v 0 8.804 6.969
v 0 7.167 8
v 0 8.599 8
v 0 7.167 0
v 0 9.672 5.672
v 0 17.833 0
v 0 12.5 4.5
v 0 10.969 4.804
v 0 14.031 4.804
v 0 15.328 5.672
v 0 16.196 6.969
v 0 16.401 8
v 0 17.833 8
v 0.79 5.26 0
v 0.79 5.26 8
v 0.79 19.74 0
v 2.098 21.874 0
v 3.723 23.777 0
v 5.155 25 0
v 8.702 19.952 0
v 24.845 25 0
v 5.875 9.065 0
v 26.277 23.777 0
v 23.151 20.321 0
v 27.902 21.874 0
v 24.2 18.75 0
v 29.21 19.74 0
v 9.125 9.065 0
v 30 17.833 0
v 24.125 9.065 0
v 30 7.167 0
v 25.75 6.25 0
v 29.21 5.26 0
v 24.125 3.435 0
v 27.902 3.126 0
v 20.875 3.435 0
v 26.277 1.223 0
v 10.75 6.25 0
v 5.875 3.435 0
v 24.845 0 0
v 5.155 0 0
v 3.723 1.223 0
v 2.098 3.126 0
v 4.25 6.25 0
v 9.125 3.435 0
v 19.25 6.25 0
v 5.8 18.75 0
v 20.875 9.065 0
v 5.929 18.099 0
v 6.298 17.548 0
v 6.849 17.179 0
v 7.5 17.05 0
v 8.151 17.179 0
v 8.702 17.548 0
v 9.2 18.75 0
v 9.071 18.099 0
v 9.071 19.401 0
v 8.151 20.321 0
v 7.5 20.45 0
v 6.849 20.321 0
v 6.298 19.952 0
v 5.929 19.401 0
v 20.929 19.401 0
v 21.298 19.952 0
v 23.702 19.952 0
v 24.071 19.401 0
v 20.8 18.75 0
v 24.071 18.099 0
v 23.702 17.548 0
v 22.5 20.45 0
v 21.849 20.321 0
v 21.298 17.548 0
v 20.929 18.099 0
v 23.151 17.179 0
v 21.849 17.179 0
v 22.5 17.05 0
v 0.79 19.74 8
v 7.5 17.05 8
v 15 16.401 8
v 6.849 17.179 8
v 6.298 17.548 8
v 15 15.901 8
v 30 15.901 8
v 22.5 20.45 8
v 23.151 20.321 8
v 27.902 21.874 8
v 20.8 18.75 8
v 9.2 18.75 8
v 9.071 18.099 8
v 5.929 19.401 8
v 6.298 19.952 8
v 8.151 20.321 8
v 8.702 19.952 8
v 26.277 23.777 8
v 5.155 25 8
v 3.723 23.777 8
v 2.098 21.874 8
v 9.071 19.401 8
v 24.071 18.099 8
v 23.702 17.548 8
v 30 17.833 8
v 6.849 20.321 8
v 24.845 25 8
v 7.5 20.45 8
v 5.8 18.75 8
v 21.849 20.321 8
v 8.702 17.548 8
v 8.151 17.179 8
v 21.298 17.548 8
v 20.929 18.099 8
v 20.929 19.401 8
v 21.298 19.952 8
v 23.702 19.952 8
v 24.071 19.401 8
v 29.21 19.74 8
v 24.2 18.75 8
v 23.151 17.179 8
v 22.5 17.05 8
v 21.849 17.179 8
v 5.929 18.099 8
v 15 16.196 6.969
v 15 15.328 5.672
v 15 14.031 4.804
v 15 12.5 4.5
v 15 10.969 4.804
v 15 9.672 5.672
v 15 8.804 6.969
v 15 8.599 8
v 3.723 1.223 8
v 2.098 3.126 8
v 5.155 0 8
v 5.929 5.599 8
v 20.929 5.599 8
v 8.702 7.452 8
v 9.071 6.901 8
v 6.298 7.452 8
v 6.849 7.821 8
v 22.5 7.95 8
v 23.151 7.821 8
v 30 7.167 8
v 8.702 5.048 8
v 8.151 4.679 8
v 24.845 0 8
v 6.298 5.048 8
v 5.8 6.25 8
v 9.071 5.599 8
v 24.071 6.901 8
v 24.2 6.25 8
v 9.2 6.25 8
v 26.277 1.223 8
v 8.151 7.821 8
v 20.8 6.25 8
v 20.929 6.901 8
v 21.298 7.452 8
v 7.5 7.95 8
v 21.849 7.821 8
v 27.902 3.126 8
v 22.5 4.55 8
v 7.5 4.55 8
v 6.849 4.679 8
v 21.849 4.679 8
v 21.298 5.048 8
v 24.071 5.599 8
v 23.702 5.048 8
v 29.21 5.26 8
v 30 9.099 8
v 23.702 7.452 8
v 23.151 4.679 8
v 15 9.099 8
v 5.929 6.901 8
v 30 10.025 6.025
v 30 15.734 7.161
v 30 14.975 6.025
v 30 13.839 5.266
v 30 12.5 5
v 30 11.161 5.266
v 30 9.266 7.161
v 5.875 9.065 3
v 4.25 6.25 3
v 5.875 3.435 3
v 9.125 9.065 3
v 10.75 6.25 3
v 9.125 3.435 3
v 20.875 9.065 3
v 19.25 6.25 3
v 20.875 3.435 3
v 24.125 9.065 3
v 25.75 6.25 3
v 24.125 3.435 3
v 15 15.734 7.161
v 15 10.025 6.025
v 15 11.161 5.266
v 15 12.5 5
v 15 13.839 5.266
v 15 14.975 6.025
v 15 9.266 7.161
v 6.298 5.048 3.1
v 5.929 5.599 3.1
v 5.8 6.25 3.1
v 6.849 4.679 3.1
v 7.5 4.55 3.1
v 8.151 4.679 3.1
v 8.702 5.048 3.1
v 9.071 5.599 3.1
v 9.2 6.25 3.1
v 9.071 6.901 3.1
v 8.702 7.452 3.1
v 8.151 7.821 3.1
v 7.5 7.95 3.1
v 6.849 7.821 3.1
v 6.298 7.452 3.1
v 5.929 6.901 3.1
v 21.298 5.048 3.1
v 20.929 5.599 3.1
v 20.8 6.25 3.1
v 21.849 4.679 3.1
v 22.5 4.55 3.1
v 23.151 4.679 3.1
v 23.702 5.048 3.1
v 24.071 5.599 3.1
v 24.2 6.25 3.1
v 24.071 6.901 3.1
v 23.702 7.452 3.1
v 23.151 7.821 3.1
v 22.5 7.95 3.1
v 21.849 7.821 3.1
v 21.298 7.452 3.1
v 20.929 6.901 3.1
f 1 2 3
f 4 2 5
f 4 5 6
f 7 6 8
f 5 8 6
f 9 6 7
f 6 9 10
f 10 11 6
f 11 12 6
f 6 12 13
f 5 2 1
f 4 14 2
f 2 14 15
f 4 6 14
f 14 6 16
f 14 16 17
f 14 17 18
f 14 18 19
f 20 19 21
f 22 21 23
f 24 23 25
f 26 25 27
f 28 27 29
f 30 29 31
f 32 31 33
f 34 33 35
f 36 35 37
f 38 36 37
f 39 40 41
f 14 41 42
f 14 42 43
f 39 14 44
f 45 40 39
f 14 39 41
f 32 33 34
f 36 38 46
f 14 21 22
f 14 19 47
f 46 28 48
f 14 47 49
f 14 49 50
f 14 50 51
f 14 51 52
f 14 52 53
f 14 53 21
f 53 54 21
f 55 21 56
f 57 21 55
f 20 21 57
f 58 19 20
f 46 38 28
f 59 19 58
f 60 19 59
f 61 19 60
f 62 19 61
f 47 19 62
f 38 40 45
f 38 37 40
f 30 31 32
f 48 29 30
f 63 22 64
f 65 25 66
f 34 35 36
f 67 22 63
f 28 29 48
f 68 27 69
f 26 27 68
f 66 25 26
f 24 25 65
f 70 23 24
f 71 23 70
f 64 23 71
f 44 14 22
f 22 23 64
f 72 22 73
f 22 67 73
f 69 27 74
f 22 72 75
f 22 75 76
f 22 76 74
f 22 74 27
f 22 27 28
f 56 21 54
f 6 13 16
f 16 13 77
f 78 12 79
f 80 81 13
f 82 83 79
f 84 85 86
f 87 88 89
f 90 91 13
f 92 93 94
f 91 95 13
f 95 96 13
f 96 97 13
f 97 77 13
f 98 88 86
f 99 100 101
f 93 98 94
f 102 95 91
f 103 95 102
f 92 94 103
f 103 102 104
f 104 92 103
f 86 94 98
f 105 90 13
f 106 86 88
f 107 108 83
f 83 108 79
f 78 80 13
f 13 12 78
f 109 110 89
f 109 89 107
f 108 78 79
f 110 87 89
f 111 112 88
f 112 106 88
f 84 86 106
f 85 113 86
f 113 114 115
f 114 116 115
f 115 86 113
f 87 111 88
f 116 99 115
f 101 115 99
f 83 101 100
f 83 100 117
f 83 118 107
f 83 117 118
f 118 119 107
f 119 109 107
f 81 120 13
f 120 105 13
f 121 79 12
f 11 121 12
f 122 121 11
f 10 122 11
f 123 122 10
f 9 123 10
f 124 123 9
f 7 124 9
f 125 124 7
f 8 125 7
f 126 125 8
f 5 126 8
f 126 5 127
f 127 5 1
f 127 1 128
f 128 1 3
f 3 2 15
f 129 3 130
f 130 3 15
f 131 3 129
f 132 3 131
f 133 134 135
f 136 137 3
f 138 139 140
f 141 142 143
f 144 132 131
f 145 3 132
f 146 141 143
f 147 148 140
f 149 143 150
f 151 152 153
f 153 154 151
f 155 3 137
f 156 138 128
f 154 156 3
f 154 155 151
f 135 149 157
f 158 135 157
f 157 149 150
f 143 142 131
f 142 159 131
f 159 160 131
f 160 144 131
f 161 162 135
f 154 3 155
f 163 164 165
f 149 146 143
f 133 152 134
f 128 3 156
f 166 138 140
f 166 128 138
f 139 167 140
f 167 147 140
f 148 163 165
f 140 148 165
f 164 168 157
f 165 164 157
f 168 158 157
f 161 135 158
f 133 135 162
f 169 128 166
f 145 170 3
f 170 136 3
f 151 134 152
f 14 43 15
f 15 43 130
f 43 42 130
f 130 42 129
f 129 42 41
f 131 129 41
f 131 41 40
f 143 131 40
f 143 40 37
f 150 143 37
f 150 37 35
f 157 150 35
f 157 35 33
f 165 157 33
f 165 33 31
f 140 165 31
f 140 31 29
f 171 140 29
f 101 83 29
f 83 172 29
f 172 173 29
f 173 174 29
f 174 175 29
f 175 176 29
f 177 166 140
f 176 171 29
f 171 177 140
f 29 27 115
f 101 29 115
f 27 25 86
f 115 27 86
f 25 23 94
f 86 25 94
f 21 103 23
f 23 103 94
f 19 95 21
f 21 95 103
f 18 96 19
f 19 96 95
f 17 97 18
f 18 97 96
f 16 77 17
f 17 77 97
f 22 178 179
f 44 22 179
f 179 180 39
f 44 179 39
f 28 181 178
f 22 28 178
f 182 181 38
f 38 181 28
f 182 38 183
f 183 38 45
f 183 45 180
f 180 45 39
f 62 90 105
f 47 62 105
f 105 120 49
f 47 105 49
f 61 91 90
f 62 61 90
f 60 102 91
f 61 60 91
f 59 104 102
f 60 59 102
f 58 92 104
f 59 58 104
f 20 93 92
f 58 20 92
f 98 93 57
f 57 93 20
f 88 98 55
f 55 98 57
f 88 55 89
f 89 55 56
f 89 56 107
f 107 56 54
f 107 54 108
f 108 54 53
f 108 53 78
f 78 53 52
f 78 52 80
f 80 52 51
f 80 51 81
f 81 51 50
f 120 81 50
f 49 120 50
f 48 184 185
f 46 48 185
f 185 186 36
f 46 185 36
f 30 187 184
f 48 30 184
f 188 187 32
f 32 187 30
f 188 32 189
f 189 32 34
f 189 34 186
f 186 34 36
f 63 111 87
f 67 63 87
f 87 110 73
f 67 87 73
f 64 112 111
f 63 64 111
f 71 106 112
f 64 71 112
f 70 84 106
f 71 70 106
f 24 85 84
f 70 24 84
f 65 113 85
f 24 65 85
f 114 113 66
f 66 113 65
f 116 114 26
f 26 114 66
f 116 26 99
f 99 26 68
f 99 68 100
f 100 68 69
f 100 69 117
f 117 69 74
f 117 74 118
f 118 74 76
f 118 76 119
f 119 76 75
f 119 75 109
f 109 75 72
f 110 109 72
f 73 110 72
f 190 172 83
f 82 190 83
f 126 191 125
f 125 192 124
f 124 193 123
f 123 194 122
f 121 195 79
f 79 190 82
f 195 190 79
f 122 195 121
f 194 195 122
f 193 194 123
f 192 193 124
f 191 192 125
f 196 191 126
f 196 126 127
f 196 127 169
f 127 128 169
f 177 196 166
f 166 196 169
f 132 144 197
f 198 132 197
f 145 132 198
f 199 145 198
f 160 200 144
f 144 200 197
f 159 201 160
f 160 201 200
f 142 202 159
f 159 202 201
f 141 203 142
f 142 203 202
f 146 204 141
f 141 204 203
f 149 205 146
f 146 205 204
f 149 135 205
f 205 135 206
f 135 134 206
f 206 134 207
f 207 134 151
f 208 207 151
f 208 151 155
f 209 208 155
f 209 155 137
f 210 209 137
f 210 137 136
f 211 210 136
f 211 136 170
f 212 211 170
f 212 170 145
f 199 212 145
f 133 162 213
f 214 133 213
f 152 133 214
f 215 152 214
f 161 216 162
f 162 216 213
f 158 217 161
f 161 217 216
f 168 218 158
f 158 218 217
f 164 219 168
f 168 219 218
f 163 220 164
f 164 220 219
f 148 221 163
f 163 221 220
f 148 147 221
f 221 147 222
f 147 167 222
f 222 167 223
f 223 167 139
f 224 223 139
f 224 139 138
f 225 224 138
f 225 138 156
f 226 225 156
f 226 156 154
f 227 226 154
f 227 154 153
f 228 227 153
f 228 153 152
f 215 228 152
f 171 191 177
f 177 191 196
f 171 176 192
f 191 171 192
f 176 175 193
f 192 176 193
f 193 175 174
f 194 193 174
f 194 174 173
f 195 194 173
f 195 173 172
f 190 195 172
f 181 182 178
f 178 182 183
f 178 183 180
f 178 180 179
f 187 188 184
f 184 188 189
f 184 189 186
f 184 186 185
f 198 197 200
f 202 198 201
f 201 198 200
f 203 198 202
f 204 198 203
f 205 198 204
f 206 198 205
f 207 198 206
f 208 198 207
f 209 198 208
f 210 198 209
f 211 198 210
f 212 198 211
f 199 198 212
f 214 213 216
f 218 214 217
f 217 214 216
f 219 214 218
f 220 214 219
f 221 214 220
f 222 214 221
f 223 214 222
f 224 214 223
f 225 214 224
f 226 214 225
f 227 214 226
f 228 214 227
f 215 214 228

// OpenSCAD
/*  Symmetric Prusia Z-coupling
    by Philip Hands <phil@hands.com>
    Copyright (C) 2011,
    distributed under the GNU GPL v2 (or later) license.
-   Inspired by:
    Yet Another Prusa Mendel Z Coupling by nophead
	is licensed under the Creative Commons - GNU GPL license.
*/

module coupling(x=30,y=25,z=8,s=8,m=7)
{
	difference()
	{
		intersection()
		{
			cube([x,y,z]);
			translate([x/2,y/2,0])  cylinder(h=z, r=sqrt(pow(x/2,2)+pow(max(s,m)/2+((y-max(s,m))/12),2)),$fn=40);
		}

		// Nut holes
		translate([x/4,y/4,0]) cylinder(h=3, r=3.25, $fn=6);
		translate([x*3/4,y/4,0]) cylinder(h=3, r=3.25, $fn=6);

		// bolt holes
		translate([x/4,y/4,3.1]) cylinder(h=10, r=1.7, $fn=16);
		translate([x*3/4,y*3/4,0]) cylinder(h=10, r=1.7, $fn=16);
		translate([x/4,y*3/4,0]) cylinder(h=10, r=1.7, $fn=16);
		translate([x*3/4,y/4,3.1]) cylinder(h=10-3.1, r=1.7, $fn=16);

		// dents for shafts
		translate([-1, y/2, z+0.5]) rotate([0,90,0]) cylinder(h=x/2+1, r=s/2, $fn=16);
		translate([x/2-1, y/2, z+0.5]) rotate([0,90,0]) cylinder(h=x/2+2, r=m/2, $fn=16);
	}
}

coupling();
//translate([0, 30, 0]) coupling();
//translate([35, 0, 0]) coupling();
//translate([35, 30, 0]) coupling();
